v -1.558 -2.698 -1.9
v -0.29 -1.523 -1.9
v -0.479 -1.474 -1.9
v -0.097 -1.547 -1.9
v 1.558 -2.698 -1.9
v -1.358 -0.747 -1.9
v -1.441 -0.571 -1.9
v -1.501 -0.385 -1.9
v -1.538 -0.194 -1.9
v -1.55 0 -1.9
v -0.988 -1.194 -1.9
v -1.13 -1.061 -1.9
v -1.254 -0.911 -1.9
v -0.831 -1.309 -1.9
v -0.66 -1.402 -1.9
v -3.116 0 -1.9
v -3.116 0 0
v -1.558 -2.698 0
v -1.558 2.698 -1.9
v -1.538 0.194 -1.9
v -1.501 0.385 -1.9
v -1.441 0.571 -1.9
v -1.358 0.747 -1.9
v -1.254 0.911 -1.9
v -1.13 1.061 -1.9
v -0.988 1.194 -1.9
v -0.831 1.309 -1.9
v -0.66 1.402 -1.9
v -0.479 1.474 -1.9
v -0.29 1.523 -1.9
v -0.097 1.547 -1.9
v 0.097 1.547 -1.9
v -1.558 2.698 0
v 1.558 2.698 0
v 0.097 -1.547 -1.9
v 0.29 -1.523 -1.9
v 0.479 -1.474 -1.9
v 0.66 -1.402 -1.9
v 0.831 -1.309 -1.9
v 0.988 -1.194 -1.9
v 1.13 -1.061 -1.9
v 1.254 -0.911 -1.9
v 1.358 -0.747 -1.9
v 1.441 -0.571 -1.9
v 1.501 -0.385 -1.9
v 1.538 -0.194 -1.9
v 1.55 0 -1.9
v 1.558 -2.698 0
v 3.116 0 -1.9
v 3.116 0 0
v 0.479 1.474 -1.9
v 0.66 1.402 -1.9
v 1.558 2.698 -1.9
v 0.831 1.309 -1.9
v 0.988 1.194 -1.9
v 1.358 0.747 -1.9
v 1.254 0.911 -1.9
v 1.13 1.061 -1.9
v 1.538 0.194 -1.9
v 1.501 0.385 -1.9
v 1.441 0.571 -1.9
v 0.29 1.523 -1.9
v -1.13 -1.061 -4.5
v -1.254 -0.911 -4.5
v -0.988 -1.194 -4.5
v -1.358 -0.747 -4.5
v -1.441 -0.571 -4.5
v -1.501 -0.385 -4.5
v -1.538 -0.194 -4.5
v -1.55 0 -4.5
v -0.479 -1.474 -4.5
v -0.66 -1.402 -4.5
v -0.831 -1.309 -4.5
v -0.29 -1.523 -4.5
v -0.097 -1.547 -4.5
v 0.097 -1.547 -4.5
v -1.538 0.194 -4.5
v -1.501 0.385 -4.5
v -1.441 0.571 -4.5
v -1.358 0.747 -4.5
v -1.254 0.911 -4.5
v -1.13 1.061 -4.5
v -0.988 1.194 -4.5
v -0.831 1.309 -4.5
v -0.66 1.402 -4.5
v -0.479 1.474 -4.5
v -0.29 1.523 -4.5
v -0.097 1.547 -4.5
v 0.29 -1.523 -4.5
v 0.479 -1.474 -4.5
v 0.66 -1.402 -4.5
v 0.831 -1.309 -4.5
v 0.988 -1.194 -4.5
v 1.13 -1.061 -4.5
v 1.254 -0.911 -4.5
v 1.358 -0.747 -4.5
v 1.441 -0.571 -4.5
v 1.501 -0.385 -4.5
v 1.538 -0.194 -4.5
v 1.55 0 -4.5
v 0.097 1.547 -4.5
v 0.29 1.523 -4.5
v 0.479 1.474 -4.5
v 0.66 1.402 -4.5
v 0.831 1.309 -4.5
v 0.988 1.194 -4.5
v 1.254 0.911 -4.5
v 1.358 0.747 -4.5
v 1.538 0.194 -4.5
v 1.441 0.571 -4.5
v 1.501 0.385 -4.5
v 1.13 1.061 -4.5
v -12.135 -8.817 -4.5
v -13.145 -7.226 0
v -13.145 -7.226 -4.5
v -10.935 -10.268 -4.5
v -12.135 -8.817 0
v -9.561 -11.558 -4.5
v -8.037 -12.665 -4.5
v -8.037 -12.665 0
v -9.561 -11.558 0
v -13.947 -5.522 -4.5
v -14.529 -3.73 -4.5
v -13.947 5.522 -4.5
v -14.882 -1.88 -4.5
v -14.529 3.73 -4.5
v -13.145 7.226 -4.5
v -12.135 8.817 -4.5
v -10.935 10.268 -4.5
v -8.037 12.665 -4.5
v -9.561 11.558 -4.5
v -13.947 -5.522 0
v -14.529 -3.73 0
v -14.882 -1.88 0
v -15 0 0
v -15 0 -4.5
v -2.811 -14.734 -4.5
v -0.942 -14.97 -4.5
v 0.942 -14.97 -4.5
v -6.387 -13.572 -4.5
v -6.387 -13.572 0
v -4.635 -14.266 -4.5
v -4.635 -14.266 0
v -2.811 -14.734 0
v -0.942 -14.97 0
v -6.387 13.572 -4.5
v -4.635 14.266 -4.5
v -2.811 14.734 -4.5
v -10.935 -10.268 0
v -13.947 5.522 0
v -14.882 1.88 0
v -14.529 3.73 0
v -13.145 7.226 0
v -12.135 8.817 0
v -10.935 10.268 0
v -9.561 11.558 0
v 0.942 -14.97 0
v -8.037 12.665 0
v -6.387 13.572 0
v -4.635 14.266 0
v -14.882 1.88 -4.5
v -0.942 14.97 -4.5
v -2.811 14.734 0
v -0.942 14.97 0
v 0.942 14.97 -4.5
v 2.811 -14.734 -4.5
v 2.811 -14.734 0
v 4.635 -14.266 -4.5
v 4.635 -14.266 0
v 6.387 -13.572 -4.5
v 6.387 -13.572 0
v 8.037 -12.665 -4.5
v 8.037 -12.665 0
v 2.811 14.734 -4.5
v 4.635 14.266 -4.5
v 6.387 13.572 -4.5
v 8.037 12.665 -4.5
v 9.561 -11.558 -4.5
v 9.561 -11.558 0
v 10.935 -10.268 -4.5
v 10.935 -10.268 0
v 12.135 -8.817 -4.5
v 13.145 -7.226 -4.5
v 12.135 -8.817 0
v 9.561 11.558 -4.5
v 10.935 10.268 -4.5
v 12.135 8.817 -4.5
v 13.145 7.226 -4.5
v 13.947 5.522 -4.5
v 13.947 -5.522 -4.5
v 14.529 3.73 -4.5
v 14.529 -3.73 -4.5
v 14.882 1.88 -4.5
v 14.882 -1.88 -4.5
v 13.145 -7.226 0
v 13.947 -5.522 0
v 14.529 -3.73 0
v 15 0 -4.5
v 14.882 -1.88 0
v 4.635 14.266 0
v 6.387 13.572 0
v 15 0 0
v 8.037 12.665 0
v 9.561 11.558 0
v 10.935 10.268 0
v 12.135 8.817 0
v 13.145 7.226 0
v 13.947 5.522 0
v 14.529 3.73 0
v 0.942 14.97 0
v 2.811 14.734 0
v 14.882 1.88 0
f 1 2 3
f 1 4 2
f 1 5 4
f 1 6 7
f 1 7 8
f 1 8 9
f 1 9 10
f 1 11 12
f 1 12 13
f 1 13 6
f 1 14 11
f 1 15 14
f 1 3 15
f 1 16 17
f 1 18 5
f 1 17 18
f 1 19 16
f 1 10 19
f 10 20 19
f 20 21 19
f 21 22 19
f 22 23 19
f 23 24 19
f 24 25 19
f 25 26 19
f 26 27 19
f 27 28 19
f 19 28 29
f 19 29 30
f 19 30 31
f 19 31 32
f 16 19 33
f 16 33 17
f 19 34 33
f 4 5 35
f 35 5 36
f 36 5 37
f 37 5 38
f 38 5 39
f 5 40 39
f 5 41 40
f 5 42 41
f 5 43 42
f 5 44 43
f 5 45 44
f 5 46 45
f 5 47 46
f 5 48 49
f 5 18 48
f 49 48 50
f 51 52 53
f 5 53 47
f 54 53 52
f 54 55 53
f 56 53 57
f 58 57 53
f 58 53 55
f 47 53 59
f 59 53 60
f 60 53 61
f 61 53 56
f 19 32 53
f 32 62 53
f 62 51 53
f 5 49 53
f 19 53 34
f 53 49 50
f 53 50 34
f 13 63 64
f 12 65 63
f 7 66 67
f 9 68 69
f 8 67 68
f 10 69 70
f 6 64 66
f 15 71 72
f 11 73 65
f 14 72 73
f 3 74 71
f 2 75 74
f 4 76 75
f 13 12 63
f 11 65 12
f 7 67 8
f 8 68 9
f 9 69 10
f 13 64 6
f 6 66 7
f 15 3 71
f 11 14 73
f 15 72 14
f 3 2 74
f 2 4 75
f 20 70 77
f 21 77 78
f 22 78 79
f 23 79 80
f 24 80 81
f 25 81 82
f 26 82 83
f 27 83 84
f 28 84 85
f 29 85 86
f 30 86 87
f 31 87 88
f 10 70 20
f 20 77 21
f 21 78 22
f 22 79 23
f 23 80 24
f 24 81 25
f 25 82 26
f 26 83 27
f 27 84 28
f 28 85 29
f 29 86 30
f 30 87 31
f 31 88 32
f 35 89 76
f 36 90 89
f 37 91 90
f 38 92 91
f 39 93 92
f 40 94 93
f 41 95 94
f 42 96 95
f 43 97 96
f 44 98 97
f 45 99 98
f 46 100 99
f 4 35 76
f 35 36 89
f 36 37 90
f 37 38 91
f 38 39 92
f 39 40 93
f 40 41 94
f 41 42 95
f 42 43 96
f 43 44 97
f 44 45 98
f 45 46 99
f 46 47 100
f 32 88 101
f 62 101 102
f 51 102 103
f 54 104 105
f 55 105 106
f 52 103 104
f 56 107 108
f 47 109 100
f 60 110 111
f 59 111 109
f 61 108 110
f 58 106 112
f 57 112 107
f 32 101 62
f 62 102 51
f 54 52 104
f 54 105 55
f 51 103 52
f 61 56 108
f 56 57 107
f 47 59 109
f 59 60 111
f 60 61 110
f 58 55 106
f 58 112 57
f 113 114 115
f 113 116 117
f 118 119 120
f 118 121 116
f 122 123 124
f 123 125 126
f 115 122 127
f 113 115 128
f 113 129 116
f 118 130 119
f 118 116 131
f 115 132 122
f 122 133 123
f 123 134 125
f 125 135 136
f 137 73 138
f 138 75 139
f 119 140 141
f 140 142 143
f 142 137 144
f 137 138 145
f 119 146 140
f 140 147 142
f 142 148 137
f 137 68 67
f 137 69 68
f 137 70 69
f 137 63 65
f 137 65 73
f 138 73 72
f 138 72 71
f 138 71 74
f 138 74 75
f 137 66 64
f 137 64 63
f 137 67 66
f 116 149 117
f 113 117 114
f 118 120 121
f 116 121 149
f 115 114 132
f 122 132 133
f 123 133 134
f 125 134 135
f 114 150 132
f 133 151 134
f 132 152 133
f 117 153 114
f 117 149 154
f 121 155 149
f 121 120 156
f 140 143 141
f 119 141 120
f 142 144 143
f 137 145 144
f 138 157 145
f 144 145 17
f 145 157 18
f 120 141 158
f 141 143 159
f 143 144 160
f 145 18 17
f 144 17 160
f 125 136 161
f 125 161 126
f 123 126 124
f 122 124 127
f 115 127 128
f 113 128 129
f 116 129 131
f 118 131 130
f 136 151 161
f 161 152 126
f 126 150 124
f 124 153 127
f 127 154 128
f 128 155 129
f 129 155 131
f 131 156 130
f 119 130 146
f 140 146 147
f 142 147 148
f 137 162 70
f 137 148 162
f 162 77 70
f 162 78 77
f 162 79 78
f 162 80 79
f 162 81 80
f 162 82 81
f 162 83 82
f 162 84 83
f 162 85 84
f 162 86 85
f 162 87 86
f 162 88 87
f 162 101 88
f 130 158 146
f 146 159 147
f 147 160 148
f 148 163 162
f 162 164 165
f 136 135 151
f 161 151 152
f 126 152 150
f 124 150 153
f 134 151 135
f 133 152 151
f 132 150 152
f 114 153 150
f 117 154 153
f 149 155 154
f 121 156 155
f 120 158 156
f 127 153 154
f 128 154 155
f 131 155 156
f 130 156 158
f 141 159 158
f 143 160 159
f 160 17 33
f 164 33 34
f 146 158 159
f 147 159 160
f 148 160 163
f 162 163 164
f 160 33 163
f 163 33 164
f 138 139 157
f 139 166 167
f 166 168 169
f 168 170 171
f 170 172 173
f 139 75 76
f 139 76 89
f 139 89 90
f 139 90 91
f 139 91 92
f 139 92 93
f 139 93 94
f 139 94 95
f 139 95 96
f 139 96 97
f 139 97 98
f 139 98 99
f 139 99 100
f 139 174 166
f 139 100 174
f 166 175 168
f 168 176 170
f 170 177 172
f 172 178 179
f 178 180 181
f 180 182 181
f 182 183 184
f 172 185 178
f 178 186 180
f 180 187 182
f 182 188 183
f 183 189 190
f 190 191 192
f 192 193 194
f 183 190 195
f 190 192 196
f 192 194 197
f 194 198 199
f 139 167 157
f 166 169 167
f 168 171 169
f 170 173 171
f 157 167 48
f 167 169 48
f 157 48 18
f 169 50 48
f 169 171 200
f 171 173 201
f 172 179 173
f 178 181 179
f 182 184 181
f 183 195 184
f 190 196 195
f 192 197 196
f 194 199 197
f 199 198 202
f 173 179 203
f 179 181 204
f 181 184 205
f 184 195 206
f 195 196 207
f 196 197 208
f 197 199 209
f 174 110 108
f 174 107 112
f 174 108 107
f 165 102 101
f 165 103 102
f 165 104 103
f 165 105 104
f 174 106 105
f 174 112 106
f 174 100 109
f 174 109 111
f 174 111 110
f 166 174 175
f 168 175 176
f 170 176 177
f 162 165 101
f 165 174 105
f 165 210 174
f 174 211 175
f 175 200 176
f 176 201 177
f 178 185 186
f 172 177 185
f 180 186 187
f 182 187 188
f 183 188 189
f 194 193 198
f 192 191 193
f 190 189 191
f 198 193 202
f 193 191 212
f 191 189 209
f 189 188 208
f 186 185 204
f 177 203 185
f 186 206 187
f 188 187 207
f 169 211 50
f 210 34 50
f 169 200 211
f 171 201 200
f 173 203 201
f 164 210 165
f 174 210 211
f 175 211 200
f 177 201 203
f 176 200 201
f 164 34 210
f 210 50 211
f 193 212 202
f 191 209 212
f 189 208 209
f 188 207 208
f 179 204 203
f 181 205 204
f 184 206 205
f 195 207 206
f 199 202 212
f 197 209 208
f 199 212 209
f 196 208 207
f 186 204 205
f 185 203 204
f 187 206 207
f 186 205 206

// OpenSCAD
$fn = 50;

difference() {
	union() {
		translate(v = [0, 0, -4.5]) {
			cylinder(h = 4.5, r = 15.0);
		}
	}
	union() {
		translate(v = [0, 0, 0]) {
			rotate(a = [0, 0, 0]) {
				difference() {
					union() {
						translate(v = [0, 0, -1.9]) {
							linear_extrude(height = 1.9) {
								polygon(points = [[3.1158, 0.0], [1.5579000000000005, 2.698361953111554], [-1.5578999999999994, 2.6983619531115544], [-3.1158, 3.815754496783323e-16], [-1.5579000000000014, -2.6983619531115535], [1.557899999999998, -2.6983619531115552]]);
							}
						}
					}
					union();
				}
			}
		}
		#translate(v = [0, 0, -100.0]) {
			cylinder(h = 200, r = 1.55);
		}
	}
}
